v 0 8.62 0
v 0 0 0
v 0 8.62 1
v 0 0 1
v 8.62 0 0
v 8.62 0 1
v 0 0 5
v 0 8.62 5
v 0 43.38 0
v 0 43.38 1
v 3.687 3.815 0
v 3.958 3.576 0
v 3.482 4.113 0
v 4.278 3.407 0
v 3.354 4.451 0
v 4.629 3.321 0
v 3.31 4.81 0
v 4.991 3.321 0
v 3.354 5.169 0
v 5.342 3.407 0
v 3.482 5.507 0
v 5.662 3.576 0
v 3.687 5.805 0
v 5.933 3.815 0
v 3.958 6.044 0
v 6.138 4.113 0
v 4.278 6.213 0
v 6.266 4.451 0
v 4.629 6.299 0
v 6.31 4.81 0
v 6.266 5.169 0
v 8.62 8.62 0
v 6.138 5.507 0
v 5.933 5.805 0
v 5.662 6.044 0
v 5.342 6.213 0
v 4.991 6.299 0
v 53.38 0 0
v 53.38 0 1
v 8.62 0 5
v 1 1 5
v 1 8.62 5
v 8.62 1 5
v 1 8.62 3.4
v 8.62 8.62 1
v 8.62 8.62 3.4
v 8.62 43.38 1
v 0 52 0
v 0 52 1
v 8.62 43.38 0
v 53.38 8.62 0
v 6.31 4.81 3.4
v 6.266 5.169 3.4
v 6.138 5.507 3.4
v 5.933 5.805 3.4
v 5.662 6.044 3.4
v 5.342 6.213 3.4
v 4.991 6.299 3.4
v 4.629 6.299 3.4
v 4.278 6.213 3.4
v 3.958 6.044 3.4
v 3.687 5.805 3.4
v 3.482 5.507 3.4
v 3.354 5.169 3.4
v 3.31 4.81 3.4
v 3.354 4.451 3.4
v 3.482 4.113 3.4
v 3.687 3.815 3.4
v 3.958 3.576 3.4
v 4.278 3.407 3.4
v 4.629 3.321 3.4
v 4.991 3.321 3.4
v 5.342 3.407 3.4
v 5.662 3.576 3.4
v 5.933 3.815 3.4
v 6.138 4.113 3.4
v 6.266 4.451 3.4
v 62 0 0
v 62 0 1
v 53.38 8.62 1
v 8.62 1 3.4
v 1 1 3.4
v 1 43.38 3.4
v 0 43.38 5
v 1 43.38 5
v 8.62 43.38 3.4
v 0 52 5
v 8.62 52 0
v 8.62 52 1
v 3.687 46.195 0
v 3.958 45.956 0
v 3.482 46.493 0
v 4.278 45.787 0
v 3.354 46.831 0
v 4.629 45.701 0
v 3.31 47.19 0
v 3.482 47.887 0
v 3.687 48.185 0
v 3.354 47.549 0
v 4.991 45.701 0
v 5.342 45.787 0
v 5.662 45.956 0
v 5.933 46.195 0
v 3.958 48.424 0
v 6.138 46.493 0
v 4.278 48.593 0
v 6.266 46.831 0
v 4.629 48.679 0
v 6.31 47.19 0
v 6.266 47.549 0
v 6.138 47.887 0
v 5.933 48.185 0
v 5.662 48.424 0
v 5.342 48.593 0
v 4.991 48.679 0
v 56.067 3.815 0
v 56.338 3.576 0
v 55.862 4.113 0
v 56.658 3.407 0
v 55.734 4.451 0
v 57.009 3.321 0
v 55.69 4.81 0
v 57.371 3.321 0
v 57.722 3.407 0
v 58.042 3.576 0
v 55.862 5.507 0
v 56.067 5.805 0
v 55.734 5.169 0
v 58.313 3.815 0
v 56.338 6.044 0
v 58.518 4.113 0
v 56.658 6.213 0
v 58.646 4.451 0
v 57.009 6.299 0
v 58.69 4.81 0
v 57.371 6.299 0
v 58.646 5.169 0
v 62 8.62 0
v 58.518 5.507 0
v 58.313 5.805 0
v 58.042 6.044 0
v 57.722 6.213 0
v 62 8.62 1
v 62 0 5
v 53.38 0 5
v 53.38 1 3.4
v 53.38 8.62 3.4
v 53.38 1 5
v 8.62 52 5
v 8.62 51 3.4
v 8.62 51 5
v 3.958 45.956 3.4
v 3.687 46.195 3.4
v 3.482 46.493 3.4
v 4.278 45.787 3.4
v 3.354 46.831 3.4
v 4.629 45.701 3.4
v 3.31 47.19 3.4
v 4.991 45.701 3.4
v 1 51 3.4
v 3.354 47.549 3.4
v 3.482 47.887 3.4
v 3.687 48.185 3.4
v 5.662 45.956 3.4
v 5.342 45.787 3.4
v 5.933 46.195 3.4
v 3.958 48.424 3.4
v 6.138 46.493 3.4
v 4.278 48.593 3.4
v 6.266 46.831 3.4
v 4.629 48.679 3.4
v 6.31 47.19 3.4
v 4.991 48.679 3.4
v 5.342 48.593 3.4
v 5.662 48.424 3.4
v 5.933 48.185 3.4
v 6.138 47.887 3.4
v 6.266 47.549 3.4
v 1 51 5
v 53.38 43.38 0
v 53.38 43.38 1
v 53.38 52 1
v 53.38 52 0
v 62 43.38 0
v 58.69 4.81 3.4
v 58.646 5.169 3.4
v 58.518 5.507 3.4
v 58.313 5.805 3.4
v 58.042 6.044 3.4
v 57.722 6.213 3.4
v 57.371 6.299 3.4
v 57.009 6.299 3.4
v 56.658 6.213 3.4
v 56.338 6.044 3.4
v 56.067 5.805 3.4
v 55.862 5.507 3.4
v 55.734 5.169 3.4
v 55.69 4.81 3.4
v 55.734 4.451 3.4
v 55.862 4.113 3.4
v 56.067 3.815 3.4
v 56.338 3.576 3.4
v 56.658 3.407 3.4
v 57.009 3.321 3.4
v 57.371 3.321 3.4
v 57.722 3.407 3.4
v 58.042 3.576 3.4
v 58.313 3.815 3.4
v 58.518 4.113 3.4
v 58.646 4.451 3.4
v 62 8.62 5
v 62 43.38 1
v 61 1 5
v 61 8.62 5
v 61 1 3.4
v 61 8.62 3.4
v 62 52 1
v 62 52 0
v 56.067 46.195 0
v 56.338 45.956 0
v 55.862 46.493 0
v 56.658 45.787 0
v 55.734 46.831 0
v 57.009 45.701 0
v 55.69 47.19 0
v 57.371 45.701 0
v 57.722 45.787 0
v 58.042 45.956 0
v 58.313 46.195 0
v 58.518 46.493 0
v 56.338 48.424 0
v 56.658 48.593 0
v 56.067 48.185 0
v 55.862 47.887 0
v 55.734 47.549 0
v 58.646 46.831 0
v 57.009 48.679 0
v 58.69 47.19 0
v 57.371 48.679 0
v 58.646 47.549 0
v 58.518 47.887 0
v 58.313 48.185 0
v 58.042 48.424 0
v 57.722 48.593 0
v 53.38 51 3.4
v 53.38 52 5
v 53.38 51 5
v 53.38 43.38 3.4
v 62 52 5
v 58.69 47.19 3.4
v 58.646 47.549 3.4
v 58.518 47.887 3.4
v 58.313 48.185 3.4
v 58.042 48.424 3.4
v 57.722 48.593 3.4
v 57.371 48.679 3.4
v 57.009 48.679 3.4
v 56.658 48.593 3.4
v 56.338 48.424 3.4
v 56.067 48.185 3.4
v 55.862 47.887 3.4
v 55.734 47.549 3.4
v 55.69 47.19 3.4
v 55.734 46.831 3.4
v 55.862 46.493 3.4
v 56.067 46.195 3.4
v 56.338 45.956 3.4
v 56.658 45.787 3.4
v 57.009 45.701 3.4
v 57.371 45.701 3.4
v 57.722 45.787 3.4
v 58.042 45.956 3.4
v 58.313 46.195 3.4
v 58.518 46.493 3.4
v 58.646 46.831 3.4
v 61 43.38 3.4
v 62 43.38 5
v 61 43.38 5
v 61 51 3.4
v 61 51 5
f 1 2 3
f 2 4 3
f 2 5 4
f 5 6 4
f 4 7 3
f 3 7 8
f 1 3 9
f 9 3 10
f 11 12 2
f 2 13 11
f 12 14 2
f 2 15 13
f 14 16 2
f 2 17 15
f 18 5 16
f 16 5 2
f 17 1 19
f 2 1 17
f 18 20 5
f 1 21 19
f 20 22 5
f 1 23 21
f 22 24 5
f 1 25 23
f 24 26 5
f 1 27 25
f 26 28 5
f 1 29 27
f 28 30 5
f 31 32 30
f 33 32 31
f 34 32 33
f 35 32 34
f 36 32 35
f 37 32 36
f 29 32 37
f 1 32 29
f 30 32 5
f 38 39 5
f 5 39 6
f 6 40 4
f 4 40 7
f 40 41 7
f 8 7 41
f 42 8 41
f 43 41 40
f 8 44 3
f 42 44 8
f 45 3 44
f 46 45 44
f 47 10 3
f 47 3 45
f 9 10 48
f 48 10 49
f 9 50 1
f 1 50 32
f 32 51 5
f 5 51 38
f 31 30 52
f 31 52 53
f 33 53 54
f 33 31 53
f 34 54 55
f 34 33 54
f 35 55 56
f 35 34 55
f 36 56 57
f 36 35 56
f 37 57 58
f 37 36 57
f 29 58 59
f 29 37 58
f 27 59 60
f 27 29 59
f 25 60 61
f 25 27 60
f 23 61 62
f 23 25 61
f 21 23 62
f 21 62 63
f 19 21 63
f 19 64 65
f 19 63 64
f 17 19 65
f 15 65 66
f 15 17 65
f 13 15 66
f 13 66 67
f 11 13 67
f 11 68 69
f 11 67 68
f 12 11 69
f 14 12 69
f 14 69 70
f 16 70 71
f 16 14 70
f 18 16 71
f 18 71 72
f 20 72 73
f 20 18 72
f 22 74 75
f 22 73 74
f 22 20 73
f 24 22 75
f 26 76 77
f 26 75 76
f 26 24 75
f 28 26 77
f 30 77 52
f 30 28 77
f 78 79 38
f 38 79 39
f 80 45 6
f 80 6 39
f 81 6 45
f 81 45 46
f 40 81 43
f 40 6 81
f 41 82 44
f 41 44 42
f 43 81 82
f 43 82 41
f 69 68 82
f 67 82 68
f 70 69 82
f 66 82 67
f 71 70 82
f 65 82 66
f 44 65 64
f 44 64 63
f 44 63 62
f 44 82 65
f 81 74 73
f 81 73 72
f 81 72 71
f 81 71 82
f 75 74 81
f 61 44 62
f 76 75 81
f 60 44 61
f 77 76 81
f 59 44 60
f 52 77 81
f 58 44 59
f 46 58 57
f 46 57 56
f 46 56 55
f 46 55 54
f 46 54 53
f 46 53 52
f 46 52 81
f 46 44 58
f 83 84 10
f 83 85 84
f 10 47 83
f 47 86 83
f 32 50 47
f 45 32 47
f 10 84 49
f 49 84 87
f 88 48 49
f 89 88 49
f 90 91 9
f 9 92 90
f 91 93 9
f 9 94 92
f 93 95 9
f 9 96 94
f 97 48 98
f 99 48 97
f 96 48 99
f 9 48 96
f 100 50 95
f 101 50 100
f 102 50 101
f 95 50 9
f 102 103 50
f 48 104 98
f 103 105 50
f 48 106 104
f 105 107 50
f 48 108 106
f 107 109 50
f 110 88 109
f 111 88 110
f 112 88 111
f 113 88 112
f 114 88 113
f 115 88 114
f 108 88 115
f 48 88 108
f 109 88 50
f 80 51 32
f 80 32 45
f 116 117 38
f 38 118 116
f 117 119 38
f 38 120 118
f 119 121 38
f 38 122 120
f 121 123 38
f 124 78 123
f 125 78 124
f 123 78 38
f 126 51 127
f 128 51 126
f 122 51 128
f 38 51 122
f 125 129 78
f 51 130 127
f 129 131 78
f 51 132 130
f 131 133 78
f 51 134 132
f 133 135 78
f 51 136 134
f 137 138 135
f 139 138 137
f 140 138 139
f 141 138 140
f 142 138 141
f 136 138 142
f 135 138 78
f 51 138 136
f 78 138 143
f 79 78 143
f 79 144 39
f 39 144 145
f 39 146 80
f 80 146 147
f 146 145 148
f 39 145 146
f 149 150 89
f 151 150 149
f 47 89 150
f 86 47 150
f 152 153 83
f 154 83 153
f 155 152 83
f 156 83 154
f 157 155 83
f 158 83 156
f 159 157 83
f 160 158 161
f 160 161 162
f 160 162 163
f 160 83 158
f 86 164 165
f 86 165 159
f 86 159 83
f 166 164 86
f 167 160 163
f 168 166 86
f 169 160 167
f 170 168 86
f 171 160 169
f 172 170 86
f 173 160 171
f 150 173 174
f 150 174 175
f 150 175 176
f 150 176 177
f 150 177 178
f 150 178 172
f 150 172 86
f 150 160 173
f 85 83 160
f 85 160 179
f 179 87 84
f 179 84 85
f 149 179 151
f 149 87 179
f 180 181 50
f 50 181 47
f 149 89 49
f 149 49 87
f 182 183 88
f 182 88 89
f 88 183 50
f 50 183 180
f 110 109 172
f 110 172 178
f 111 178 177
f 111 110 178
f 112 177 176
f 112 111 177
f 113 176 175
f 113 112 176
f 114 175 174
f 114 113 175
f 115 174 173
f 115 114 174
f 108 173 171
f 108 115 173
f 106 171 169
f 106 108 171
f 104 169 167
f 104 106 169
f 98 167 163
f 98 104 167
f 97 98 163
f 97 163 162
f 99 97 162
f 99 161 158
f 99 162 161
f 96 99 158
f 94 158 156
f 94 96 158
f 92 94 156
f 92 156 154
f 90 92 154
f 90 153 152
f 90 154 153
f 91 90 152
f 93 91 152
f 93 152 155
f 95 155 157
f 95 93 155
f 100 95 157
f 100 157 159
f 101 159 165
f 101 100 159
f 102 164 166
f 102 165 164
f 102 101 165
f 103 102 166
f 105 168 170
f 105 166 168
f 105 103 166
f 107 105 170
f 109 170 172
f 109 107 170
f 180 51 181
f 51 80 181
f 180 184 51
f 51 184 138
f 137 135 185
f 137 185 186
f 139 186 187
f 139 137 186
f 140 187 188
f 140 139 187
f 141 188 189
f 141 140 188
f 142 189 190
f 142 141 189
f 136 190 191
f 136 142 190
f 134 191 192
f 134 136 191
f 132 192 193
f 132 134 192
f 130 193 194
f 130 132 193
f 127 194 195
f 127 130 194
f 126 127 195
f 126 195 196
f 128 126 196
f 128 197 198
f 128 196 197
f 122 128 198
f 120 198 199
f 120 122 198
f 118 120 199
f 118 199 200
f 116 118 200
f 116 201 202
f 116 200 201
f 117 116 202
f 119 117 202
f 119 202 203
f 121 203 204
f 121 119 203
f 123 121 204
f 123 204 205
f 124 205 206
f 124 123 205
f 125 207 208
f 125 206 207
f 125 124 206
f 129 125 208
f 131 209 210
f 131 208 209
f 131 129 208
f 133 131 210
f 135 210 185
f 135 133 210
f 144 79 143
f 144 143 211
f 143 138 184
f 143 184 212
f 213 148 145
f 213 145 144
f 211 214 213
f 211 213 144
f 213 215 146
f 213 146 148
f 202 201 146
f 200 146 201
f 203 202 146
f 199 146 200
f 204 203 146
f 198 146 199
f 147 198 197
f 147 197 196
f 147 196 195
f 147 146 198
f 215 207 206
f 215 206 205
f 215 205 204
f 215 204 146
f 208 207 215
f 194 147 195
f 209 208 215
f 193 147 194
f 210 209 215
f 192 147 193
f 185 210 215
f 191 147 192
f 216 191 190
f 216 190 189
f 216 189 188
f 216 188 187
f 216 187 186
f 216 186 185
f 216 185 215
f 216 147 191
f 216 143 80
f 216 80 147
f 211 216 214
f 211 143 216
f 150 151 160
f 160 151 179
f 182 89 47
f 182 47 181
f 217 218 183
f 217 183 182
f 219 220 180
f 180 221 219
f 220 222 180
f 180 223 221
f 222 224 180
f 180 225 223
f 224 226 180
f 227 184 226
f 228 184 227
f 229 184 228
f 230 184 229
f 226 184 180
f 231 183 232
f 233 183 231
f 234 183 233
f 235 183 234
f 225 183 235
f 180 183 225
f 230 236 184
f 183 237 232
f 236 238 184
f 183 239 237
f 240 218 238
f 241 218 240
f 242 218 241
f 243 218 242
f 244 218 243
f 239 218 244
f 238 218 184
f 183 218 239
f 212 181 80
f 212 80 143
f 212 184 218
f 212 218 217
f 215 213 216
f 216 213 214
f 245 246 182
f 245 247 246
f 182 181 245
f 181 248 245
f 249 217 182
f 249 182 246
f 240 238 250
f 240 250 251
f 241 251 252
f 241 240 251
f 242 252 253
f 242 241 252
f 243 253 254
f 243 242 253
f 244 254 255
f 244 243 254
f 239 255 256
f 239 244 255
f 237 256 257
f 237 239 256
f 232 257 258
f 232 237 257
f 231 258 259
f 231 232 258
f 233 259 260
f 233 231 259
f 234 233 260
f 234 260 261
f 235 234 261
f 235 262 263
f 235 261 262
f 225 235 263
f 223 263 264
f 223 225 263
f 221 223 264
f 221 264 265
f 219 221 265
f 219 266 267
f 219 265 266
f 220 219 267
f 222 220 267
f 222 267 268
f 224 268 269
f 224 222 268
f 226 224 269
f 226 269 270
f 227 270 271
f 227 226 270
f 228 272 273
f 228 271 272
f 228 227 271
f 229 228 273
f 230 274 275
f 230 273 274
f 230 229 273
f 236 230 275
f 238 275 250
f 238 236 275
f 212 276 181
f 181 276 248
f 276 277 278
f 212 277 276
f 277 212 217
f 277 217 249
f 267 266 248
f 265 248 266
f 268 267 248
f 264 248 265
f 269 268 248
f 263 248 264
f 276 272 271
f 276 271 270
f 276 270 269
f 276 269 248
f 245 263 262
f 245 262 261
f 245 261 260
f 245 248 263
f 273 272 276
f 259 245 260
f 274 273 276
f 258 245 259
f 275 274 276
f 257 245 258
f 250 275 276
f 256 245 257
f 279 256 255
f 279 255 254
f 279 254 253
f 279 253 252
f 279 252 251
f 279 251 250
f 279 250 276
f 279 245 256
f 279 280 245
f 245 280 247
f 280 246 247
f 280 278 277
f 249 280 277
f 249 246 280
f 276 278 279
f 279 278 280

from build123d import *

# Parameters (mm, degrees)
PCB_W           = 60
PCB_H           = 50
PCB_DEPTH       = 1.6
HOLE_0_R        = 1.5
HOLE_0_DEPTH    = 5
HOLE_1_R        = 1.5
HOLE_1_DEPTH    = 5
HOLE_2_R        = 1.5
HOLE_2_DEPTH    = 5
HOLE_3_R        = 1.5
HOLE_3_DEPTH    = 5
FLOOR_CUT_W     = 44.76
FLOOR_CUT_H     = 34.76
FLOOR_CUT_DEPTH = 1
BLOCK_0_W       = 8.62
BLOCK_0_H       = 8.62
BLOCK_0_DEPTH   = 5
BLOCK_1_W       = 8.62
BLOCK_1_H       = 8.62
BLOCK_1_DEPTH   = 5
BLOCK_2_W       = 8.62
BLOCK_2_H       = 8.62
BLOCK_2_DEPTH   = 5
BLOCK_3_W       = 8.62
BLOCK_3_H       = 8.62
BLOCK_3_DEPTH   = 5
FLOOR_W         = 62
FLOOR_H         = 52
FLOOR_DEPTH     = 1


with BuildPart() as pcb:
    # pcb → pcb (new body)
    with BuildSketch(Plane(origin=(1, 1, 3.4), x_dir=(1, 0, 0), z_dir=(0, 0, 1))):
        with Locations((30, 25)):
            Rectangle(PCB_W, PCB_H)
    extrude(amount=PCB_DEPTH)


with BuildPart() as hole_0_body:
    # hole_0 → hole_0 (new body)
    with BuildSketch(Plane(origin=(4.81, 4.81, 0), x_dir=(1, 0, 0), z_dir=(0, 0, 1))):
        Circle(HOLE_0_R)
    extrude(amount=HOLE_0_DEPTH)


with BuildPart() as hole_1_body:
    # hole_1 → hole_1 (new body)
    with BuildSketch(Plane(origin=(4.81, 47.19, 0), x_dir=(1, 0, 0), z_dir=(0, 0, 1))):
        Circle(HOLE_1_R)
    extrude(amount=HOLE_1_DEPTH)


with BuildPart() as hole_2_body:
    # hole_2 → hole_2 (new body)
    with BuildSketch(Plane(origin=(57.19, 4.81, 0), x_dir=(1, 0, 0), z_dir=(0, 0, 1))):
        Circle(HOLE_2_R)
    extrude(amount=HOLE_2_DEPTH)


with BuildPart() as hole_3_body:
    # hole_3 → hole_3 (new body)
    with BuildSketch(Plane(origin=(57.19, 47.19, 0), x_dir=(1, 0, 0), z_dir=(0, 0, 1))):
        Circle(HOLE_3_R)
    extrude(amount=HOLE_3_DEPTH)


with BuildPart() as tool:
    # floor_cut → floor_cut (new body)
    with BuildSketch(Plane(origin=(8.62, 8.62, 0), x_dir=(1, 0, 0), z_dir=(0, 0, 1))):
        with Locations((22.38, 17.38)):
            Rectangle(FLOOR_CUT_W, FLOOR_CUT_H)
    extrude(amount=FLOOR_CUT_DEPTH)

    # tool: union pcb, hole_0 body, hole_1 body, hole_2 body, hole_3 body
    add(pcb.part)
    add(hole_0_body.part)
    add(hole_1_body.part)
    add(hole_2_body.part)
    add(hole_3_body.part)


with BuildPart() as block_0_body:
    # block_0 → block_0 (new body)
    with BuildSketch(Plane.XY):
        with Locations((4.31, 4.31)):
            Rectangle(BLOCK_0_W, BLOCK_0_H)
    extrude(amount=BLOCK_0_DEPTH)


with BuildPart() as block_1_body:
    # block_1 → block_1 (new body)
    with BuildSketch(Plane(origin=(0, 43.38, 0), x_dir=(1, 0, 0), z_dir=(0, 0, 1))):
        with Locations((4.31, 4.31)):
            Rectangle(BLOCK_1_W, BLOCK_1_H)
    extrude(amount=BLOCK_1_DEPTH)


with BuildPart() as block_2_body:
    # block_2 → block_2 (new body)
    with BuildSketch(Plane(origin=(53.38, 0, 0), x_dir=(1, 0, 0), z_dir=(0, 0, 1))):
        with Locations((4.31, 4.31)):
            Rectangle(BLOCK_2_W, BLOCK_2_H)
    extrude(amount=BLOCK_2_DEPTH)


with BuildPart() as block_3_body:
    # block_3 → block_3 (new body)
    with BuildSketch(Plane(origin=(53.38, 43.38, 0), x_dir=(1, 0, 0), z_dir=(0, 0, 1))):
        with Locations((4.31, 4.31)):
            Rectangle(BLOCK_3_W, BLOCK_3_H)
    extrude(amount=BLOCK_3_DEPTH)


with BuildPart() as final:
    # floor → floor (new body)
    with BuildSketch(Plane.XY):
        with Locations((31, 26)):
            Rectangle(FLOOR_W, FLOOR_H)
    extrude(amount=FLOOR_DEPTH)

    # base: union block_0 body, block_1 body, block_2 body, block_3 body
    add(block_0_body.part)
    add(block_1_body.part)
    add(block_2_body.part)
    add(block_3_body.part)

    # final: cut tool
    add(tool.part, mode=Mode.SUBTRACT)


solid = final.part
